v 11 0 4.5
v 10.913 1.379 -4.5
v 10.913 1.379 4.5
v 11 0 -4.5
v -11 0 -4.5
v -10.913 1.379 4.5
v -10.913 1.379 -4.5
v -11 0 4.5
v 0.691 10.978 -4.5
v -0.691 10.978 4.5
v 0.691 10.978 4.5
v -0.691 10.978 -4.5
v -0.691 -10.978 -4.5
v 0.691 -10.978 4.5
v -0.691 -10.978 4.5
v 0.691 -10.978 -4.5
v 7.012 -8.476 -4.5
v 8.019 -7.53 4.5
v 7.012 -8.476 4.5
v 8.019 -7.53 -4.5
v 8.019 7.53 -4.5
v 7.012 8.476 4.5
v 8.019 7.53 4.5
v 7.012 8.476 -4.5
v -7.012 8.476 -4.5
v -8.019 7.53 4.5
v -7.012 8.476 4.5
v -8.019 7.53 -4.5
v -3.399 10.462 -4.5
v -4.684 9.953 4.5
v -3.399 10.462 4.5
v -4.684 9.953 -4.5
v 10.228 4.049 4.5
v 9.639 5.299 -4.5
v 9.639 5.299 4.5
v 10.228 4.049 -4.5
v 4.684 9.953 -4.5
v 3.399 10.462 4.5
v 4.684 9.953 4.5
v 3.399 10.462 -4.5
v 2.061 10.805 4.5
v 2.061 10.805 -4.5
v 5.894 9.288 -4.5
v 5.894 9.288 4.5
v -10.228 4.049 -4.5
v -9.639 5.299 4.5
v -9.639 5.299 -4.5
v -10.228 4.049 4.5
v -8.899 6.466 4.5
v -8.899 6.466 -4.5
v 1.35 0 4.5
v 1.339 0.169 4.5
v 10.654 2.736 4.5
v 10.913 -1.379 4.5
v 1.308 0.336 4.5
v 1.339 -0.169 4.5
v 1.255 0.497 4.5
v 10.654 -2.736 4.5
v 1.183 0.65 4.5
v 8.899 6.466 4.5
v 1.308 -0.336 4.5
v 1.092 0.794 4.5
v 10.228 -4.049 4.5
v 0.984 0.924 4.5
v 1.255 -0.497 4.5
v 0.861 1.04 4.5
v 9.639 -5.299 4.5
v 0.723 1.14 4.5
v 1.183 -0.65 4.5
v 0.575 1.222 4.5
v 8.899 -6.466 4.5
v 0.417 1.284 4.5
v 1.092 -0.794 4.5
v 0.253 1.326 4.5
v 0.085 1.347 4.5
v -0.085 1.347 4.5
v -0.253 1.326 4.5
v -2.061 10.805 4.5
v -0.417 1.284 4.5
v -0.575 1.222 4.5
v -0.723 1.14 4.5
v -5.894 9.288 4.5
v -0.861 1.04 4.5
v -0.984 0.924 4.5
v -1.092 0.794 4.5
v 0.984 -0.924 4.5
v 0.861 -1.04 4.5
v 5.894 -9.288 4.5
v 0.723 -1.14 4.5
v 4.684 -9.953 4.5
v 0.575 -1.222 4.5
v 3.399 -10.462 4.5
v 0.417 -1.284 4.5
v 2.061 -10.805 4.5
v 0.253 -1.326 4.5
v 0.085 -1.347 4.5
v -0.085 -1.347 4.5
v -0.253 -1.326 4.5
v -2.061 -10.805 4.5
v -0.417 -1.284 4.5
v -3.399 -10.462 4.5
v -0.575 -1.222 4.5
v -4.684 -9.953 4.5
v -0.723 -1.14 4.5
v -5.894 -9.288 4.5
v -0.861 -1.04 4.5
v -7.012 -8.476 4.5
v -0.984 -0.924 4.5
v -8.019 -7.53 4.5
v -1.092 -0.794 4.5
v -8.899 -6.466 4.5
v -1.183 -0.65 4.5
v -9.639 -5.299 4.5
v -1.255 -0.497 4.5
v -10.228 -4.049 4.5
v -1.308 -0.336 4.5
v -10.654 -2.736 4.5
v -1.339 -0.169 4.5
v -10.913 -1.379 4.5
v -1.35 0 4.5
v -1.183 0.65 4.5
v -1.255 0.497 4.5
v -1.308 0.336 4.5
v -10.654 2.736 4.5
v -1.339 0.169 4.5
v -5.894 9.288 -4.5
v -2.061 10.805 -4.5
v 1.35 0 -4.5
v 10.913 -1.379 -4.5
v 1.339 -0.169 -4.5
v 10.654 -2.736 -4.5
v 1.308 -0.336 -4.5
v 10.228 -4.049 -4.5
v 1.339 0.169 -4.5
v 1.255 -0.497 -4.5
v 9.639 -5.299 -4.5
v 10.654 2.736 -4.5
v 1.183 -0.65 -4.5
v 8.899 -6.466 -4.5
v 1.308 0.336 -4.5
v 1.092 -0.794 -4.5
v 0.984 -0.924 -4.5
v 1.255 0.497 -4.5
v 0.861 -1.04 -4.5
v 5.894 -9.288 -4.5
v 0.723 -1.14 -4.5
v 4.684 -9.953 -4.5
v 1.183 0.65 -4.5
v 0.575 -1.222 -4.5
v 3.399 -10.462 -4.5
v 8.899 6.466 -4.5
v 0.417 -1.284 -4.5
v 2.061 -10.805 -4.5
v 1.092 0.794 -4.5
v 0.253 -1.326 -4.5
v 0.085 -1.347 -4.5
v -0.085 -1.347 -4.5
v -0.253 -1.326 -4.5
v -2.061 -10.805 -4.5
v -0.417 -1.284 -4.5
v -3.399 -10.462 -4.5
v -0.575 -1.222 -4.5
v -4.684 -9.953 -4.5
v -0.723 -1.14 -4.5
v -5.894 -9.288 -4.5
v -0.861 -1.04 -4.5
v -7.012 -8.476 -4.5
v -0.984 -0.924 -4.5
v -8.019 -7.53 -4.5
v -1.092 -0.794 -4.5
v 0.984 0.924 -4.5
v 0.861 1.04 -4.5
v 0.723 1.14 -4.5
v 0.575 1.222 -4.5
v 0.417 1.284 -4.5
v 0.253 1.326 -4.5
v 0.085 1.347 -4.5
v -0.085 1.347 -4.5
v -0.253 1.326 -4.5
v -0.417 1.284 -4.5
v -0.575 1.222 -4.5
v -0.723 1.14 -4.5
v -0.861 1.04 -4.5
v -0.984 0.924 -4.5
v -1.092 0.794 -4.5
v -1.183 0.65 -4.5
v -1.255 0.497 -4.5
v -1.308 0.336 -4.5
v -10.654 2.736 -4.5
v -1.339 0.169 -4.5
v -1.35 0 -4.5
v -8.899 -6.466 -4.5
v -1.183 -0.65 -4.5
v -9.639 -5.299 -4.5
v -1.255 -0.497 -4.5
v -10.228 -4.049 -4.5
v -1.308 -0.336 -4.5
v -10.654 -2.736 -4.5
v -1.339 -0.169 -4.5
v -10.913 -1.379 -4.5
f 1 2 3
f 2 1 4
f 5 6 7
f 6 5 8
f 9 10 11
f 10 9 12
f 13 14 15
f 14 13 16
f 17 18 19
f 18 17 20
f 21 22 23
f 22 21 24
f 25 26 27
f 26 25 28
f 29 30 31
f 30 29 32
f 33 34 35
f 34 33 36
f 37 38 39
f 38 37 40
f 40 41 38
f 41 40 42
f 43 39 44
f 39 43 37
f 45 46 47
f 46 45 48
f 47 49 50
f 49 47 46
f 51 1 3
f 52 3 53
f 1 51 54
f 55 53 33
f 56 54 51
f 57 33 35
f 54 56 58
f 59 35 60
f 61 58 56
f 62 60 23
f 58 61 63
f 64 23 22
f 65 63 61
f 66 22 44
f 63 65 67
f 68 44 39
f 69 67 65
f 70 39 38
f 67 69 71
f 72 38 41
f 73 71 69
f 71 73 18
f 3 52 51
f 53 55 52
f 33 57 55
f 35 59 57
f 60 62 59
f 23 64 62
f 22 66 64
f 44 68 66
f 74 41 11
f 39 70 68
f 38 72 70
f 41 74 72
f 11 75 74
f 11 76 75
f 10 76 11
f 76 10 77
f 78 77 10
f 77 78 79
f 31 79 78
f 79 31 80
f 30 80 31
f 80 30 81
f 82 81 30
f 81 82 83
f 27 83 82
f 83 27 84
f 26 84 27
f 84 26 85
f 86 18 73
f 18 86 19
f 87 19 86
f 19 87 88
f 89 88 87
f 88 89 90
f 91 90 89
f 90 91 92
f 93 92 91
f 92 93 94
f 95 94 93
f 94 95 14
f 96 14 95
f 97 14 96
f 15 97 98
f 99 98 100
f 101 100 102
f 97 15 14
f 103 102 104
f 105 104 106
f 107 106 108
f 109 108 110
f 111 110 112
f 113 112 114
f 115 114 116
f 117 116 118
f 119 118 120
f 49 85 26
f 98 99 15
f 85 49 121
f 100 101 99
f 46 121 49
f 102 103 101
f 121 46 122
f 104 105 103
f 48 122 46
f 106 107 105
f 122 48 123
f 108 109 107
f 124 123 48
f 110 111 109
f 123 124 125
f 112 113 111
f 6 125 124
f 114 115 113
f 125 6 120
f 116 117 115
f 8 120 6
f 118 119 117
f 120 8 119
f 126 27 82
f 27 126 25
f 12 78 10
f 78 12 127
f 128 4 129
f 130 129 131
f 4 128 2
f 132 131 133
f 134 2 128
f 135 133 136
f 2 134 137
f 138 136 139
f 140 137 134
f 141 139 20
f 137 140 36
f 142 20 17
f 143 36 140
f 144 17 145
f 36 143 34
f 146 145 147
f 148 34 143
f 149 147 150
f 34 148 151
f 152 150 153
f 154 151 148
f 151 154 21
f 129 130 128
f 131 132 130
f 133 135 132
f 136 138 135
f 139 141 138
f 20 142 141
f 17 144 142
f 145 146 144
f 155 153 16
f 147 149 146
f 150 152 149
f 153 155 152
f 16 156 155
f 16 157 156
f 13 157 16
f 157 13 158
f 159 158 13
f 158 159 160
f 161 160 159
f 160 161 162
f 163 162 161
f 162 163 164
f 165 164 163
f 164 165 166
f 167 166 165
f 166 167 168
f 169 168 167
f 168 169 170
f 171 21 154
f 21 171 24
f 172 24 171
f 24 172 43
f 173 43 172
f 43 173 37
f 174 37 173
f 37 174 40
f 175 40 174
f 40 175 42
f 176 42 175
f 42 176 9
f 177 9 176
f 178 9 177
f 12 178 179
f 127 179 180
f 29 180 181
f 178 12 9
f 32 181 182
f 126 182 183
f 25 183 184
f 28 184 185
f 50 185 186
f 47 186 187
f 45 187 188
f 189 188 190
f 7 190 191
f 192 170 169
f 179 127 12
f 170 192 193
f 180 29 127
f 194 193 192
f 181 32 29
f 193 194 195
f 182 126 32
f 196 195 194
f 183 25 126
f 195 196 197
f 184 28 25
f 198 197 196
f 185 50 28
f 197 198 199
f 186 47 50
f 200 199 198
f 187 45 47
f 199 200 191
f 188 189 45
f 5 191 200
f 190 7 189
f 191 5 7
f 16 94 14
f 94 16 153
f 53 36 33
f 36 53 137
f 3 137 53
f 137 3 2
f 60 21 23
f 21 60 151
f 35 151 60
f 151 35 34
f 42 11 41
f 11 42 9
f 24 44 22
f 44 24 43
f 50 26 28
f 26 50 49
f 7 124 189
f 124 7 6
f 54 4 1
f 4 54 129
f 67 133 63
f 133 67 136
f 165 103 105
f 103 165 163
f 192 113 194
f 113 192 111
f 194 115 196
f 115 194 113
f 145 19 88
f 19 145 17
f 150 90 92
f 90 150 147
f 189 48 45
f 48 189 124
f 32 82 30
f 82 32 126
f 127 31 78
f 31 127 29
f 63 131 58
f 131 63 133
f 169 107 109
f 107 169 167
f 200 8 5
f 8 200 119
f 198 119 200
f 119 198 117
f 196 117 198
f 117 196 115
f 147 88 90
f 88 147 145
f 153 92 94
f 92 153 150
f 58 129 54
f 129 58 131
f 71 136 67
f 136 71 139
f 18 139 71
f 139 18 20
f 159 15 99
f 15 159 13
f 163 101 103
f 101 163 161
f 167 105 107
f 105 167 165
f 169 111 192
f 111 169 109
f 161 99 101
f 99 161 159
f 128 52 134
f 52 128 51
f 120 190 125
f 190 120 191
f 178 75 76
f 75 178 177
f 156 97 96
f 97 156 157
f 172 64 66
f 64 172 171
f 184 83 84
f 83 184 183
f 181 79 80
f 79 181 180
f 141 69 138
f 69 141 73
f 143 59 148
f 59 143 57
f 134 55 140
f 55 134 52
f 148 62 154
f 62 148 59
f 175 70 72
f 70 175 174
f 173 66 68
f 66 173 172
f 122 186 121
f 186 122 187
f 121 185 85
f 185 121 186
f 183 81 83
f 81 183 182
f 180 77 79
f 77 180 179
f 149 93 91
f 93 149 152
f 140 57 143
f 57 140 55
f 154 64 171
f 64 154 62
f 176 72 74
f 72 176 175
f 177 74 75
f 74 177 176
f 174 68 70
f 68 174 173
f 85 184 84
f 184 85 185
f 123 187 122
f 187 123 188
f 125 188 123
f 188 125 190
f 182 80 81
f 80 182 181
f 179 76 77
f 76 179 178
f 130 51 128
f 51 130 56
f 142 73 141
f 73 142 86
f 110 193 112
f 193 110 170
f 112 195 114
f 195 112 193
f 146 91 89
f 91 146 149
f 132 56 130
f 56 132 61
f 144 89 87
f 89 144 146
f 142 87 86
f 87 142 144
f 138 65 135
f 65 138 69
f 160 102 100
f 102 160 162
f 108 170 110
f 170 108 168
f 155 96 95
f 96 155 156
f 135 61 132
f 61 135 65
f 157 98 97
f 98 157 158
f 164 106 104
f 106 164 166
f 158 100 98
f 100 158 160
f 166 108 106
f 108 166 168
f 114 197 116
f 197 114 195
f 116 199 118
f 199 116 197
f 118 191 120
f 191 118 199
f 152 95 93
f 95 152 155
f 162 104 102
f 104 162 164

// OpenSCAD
$fn = 50;


difference() {
	union() {
		translate(v = [0, 0, -4.5000000000]) {
			cylinder(h = 9, r = 11.0000000000);
		}
	}
	union() {
		translate(v = [0, 0, -100.0000000000]) {
			cylinder(h = 200, r = 1.3500000000);
		}
	}
}
